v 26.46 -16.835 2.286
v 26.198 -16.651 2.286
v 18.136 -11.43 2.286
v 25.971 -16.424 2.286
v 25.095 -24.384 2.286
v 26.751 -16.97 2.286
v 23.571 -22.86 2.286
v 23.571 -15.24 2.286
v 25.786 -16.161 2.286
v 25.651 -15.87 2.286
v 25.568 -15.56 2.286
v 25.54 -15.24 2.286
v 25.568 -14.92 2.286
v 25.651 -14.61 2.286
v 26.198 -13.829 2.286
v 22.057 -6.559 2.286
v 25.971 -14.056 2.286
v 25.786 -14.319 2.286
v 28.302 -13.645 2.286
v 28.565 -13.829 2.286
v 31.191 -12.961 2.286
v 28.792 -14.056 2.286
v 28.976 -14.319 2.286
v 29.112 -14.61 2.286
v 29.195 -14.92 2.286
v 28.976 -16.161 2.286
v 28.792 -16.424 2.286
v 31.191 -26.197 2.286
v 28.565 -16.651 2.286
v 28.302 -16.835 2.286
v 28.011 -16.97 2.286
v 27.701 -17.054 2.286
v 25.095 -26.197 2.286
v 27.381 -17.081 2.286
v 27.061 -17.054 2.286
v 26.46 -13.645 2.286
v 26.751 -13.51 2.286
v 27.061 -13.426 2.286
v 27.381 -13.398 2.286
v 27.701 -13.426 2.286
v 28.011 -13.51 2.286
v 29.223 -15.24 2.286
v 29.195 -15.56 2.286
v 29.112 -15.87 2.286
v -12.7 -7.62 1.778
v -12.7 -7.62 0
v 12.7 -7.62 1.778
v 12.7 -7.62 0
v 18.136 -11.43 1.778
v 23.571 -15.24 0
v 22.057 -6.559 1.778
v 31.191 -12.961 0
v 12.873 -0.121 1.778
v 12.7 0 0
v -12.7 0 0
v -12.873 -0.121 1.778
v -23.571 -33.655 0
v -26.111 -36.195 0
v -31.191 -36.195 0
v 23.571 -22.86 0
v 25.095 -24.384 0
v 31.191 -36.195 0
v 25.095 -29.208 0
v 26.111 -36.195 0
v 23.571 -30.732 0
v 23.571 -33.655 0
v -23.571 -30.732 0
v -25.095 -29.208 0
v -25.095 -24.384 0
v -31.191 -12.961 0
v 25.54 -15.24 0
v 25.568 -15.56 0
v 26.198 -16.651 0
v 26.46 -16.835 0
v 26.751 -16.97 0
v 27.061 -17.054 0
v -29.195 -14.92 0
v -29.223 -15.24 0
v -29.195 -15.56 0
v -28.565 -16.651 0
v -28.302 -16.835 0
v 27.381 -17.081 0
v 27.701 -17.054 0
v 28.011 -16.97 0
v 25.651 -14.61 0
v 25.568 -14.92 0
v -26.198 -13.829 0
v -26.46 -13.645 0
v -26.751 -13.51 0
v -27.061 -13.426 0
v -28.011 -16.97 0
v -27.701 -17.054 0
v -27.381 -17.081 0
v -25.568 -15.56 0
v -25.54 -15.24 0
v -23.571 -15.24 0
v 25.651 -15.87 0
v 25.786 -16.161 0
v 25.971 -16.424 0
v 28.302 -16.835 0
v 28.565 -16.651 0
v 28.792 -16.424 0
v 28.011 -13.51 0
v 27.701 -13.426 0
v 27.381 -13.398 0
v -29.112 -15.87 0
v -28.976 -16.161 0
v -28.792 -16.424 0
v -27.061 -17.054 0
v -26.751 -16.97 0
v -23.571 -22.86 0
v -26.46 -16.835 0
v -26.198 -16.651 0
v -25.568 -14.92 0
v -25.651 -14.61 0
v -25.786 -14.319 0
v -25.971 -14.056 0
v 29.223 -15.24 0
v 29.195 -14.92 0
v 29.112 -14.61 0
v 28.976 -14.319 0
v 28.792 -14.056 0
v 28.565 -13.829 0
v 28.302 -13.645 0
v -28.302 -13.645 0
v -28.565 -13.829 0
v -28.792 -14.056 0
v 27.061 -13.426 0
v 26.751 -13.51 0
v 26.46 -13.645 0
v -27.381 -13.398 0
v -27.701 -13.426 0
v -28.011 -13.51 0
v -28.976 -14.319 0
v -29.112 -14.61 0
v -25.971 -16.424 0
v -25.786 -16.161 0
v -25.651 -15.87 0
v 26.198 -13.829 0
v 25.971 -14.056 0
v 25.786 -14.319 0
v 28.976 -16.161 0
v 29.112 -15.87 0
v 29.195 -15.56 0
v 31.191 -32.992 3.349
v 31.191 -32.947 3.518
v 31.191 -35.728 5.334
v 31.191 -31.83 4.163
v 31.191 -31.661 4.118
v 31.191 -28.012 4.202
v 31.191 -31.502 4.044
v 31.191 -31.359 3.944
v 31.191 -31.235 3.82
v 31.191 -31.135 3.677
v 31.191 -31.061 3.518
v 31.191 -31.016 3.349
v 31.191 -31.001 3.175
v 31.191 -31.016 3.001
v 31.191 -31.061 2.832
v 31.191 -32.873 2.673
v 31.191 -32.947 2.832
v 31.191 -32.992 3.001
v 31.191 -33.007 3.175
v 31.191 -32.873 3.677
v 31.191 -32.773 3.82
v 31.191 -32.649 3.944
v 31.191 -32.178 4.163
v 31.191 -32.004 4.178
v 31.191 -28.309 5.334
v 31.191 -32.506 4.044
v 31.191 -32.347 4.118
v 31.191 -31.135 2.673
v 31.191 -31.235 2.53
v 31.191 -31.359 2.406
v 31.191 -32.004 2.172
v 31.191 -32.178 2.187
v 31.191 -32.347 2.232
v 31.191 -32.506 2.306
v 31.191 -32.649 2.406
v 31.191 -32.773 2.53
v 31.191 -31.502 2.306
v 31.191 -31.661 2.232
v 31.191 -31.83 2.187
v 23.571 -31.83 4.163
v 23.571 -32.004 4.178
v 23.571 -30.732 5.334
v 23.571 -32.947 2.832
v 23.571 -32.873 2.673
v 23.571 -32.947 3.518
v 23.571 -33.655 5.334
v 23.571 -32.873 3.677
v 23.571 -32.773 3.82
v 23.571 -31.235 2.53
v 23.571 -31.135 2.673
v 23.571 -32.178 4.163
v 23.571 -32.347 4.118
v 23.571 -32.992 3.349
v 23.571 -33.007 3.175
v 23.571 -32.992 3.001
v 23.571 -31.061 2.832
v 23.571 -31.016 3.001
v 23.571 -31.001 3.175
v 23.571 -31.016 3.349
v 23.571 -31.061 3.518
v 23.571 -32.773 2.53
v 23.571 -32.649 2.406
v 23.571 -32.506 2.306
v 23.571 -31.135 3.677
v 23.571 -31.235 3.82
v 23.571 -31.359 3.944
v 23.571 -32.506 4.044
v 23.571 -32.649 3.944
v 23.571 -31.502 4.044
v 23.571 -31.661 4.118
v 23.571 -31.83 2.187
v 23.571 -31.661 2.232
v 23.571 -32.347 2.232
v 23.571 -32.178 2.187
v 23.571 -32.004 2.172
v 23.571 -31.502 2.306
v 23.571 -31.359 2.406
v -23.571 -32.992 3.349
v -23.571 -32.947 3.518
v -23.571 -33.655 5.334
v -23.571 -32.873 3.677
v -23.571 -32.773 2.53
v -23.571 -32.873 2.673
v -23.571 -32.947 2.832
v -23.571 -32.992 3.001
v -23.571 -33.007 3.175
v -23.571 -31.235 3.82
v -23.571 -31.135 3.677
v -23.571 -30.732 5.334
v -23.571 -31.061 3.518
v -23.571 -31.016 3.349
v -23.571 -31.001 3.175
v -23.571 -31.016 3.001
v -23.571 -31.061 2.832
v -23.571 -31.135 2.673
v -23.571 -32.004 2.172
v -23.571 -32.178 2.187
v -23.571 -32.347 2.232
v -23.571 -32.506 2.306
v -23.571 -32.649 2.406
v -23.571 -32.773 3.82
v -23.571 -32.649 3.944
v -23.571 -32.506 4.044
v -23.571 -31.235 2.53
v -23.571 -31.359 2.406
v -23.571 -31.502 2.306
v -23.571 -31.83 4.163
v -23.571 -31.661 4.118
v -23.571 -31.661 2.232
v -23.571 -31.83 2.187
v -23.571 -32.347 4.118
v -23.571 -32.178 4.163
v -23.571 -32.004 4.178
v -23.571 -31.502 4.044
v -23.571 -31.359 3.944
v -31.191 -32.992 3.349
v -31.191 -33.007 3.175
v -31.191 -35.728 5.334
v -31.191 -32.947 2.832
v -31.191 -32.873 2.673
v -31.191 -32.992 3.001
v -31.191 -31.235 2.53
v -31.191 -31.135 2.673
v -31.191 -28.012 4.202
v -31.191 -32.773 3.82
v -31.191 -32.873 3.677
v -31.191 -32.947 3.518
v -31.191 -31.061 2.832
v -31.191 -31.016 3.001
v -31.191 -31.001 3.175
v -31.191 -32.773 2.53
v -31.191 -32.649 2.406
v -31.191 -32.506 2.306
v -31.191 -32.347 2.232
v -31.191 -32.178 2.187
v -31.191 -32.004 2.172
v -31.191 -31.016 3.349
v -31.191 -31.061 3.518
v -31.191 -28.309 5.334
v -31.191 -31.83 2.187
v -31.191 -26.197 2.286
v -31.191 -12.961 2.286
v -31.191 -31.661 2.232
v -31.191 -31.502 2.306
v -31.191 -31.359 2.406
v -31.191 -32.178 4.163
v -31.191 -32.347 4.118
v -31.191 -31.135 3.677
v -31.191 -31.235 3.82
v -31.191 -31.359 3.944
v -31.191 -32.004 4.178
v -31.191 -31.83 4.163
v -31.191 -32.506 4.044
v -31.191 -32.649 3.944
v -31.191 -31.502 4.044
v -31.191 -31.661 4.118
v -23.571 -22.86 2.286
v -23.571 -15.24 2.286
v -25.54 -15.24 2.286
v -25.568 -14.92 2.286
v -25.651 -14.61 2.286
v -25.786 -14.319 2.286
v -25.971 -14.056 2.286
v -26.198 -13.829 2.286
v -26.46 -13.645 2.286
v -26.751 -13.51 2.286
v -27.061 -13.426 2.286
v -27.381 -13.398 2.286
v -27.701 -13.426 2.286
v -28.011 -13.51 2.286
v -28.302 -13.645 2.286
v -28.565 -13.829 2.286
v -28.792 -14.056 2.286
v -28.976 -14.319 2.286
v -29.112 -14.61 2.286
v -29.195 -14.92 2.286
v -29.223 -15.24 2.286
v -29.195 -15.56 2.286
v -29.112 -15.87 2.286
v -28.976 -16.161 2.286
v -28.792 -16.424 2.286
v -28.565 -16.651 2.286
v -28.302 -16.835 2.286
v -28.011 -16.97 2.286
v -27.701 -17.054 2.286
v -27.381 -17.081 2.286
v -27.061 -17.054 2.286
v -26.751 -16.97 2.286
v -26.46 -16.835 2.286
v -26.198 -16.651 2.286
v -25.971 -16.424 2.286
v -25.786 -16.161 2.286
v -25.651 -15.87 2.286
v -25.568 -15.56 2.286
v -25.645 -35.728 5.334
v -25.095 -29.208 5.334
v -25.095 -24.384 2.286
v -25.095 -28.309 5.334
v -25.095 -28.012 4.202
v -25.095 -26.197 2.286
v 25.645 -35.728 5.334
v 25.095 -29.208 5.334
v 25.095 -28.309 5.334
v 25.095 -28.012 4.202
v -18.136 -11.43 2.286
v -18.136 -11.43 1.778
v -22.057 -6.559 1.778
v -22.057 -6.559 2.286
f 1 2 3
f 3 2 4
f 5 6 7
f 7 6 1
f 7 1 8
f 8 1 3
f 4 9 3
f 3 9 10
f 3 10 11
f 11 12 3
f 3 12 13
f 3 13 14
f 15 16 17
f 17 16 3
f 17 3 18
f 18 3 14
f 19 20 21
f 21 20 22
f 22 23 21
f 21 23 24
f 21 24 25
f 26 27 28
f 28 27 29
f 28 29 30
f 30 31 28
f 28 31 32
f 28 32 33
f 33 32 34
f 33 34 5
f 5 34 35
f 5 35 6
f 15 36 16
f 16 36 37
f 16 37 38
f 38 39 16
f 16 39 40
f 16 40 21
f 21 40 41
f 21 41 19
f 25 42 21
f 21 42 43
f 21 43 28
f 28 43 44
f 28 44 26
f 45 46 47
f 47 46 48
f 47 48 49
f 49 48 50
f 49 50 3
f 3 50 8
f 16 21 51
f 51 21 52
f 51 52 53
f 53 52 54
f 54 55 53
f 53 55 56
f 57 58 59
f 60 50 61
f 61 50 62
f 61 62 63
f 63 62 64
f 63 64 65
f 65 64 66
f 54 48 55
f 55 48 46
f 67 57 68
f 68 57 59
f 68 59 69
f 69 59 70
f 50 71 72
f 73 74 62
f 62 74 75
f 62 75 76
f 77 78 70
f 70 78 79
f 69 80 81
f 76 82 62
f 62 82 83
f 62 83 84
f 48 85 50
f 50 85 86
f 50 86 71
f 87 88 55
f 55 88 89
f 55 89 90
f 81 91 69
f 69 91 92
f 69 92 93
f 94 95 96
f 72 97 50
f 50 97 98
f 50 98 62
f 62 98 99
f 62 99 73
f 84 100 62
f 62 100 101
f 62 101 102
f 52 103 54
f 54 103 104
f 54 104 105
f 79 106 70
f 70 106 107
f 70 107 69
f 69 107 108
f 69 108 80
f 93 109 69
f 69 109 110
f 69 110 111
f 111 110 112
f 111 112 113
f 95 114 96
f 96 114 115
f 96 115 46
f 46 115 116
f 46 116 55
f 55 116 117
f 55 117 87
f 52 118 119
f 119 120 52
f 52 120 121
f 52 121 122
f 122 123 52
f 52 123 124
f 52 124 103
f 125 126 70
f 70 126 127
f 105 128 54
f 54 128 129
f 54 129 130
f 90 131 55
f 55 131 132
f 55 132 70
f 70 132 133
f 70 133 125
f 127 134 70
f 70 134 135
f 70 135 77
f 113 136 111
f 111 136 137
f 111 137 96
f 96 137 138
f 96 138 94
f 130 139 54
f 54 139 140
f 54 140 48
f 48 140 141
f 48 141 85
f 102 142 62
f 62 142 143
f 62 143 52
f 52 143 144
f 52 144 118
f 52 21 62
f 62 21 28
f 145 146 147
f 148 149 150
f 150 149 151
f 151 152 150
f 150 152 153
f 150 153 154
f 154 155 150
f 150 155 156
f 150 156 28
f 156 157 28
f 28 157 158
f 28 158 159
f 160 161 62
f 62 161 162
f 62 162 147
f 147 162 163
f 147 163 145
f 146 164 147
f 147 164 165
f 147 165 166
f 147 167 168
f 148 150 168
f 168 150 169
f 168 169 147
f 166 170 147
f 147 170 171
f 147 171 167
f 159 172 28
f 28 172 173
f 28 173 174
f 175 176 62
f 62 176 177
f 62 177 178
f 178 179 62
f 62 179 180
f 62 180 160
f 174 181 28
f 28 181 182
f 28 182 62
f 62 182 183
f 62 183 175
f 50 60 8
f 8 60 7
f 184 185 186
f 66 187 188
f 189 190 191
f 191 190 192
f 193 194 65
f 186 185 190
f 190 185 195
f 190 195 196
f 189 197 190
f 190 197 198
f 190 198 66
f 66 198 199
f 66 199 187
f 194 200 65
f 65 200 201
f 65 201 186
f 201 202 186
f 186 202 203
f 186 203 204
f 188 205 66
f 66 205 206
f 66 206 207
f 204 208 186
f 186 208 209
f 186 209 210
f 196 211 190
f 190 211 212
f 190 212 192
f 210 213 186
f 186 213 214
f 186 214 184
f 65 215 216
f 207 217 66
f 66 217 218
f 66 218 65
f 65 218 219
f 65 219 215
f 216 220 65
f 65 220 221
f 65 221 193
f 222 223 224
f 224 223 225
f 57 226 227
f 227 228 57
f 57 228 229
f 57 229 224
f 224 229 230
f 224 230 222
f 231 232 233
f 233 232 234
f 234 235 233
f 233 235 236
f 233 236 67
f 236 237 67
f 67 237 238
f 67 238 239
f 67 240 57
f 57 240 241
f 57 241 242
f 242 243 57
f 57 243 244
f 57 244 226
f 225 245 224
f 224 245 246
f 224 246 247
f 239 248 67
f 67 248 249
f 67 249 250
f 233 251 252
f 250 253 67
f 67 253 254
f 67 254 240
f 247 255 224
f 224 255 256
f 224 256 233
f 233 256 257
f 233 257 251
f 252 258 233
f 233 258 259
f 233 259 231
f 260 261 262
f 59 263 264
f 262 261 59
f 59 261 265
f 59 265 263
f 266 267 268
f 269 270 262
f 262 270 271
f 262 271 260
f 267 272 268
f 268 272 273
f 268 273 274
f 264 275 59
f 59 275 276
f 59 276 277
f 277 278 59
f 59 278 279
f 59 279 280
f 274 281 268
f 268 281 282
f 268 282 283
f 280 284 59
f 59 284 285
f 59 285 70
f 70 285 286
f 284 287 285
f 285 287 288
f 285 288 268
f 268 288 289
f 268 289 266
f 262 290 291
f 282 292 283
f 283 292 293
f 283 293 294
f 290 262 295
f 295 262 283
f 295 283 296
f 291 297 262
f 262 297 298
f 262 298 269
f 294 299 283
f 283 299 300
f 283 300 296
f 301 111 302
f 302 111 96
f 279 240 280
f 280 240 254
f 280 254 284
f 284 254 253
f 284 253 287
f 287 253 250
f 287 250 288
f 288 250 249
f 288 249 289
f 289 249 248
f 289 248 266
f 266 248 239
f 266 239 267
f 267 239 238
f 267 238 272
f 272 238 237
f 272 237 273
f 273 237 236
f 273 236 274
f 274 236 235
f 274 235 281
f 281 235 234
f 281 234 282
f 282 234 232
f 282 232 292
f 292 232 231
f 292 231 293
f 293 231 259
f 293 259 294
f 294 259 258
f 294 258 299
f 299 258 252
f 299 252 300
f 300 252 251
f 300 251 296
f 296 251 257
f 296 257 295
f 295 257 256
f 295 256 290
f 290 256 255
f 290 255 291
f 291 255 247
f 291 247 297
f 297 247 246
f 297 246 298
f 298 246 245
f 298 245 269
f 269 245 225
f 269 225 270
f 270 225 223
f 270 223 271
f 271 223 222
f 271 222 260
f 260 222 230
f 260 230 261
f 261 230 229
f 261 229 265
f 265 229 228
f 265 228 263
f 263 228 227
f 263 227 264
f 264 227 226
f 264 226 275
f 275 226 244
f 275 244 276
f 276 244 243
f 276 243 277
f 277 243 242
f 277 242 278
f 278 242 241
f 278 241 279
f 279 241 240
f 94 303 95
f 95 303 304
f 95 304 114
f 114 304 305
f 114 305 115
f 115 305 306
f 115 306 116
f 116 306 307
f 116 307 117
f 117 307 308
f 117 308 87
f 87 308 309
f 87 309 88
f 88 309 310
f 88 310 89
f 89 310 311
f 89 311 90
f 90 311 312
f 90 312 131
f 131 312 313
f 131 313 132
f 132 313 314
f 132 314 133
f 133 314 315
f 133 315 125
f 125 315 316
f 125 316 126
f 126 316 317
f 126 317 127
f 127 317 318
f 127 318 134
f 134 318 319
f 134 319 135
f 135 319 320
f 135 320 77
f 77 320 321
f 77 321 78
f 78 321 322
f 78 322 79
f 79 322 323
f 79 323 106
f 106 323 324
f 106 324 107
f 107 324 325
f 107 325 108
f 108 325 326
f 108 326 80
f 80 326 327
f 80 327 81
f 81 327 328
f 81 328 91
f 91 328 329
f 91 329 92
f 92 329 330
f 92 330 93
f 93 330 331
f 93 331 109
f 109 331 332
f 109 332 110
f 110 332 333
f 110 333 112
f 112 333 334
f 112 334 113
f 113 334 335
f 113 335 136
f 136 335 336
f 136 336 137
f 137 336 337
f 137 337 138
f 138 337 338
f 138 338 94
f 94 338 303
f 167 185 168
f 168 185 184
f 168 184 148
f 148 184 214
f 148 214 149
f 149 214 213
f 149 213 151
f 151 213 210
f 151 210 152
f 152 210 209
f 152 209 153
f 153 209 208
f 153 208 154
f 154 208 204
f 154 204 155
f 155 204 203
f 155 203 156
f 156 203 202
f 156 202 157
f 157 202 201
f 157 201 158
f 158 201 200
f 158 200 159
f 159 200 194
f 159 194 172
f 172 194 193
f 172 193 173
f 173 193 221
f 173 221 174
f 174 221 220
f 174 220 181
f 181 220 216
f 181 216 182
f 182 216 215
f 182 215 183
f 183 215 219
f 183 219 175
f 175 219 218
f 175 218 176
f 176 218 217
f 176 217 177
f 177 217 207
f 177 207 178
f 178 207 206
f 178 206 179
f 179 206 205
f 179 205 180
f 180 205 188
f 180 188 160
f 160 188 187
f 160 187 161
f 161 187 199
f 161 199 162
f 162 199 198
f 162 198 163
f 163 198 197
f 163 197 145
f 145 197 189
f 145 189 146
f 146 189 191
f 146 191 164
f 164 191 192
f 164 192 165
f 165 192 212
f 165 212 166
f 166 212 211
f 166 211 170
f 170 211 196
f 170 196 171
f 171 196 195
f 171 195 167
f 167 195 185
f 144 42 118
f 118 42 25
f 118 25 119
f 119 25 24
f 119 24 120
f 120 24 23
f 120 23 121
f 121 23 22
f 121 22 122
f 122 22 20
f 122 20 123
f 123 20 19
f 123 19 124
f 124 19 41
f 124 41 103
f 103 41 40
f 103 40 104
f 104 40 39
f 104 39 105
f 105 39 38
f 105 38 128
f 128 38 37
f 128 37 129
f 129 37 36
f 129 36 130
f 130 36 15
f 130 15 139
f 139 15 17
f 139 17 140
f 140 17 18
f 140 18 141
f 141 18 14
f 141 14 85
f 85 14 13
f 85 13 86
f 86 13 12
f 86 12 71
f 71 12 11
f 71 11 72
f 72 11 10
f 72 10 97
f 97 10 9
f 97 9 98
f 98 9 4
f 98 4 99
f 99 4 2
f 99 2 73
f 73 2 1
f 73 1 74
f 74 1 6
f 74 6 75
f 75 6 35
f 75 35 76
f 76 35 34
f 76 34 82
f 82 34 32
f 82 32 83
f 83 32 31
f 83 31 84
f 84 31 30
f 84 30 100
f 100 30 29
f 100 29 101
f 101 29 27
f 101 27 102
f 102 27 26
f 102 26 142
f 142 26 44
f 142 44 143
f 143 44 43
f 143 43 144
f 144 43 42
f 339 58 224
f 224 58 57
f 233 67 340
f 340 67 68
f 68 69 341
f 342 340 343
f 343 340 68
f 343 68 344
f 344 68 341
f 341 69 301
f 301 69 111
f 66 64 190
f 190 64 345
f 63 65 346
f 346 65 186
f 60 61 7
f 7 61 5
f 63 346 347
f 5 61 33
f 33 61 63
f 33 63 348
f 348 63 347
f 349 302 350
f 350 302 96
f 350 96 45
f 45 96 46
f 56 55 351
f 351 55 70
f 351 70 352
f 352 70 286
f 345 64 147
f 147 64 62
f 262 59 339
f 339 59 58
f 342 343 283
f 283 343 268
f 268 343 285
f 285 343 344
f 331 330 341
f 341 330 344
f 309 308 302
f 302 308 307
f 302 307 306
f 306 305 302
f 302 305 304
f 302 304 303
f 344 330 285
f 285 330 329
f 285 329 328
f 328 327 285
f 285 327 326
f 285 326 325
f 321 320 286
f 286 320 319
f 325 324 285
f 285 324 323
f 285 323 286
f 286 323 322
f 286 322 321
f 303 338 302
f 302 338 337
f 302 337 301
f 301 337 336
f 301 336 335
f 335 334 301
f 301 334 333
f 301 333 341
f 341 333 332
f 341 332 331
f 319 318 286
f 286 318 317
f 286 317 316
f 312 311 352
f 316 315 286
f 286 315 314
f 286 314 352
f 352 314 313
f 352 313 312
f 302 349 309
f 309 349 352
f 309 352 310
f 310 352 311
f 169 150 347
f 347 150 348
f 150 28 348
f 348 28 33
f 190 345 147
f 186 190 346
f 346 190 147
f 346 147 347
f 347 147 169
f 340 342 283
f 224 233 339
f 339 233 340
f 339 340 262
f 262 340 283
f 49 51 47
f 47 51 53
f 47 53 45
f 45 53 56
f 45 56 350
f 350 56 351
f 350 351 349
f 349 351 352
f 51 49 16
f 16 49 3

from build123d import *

# Parameters (mm, degrees)
BOSS_EXTRUDE1_DEPTH                  = 6.35
CUT_START                            = -8.62
SKETCH2_R                            = 1.0033
CUT_FOR_LID_MOUNT_SCREW_DEPTH        = 33.1912
SKETCH3_R                            = 1.8415
CUT_FOR_MOUNTING_SCREW_DEPTH         = 7.35
CUT_FOR_CONTROL_WIRE_CLEARANCE_DEPTH = 7.35
BOSS_EXTRUDE2_DEPTH                  = 6.35
CUT_EXTRUDE1_DEPTH                   = 7.35
CUT_EXTRUDE2_DEPTH                   = 63.3824
SKETCH18_W                           = 1.016
SKETCH18_H                           = 8.944323542
CUT_EXTRUDE11_DEPTH                  = 63.3824
CUT_EXTRUDE12_DEPTH                  = 0.508


with BuildPart() as part:
    # Sketch1 → Boss-Extrude1 (new body)
    with BuildSketch(Plane.XY):
        Polygon((0, 0), (-31.1912, 0), (-31.1912, -36.195), (-23.5712, -36.195), (-23.5712, -7.62), (0, -7.62), align=None)
    boss_extrude1 = extrude(amount=BOSS_EXTRUDE1_DEPTH)

    # Sketch2 → cut for lid mount screw (cut)
    with BuildSketch(Plane(origin=(-23.5712, 0, 0), x_dir=(0, 0, -1), z_dir=(1, 0, 0)).offset(CUT_START)):
        with Locations((-3.175, -32.004)):
            Circle(SKETCH2_R)
    cut_for_lid_mount_screw = extrude(amount=CUT_FOR_LID_MOUNT_SCREW_DEPTH, mode=Mode.SUBTRACT)

    # Sketch3 → cut for mounting screw (cut, through all)
    with BuildSketch(Plane.XY.offset(6.35)):
        with Locations((-27.3812, -15.24)):
            Circle(SKETCH3_R)
    cut_for_mounting_screw = extrude(amount=-CUT_FOR_MOUNTING_SCREW_DEPTH, mode=Mode.SUBTRACT)

    # Mirror1: Boss-Extrude1 across plane
    add(boss_extrude1.mirror(Plane(origin=(0, 0, 0), x_dir=(0, 0, 1), z_dir=(1, 0, 0))))

    # Mirror2: cut for lid mount screw across plane
    add(cut_for_lid_mount_screw.mirror(Plane(origin=(0, 0, 0), x_dir=(0, 0, 1), z_dir=(1, 0, 0))), mode=Mode.SUBTRACT)

    # Mirror3: cut for mounting screw across plane
    add(cut_for_mounting_screw.mirror(Plane(origin=(0, 0, 0), x_dir=(0, 0, 1), z_dir=(1, 0, 0))), mode=Mode.SUBTRACT)

    # Sketch4 → cut for control wire clearance (cut, through all)
    with BuildSketch(Plane.XY.offset(6.35)):
        Polygon((-25.0952, -24.384), (-25.0952, -29.207906516), (-23.5712, -30.731906516), (-23.5712, -22.86), align=None)
        Polygon((-23.5712, -36.195), (-23.5712, -33.655), (-26.1112, -36.195), align=None)
    cut_for_control_wire_clearance = extrude(amount=-CUT_FOR_CONTROL_WIRE_CLEARANCE_DEPTH, mode=Mode.SUBTRACT)

    # Mirror4: cut for control wire clearance across plane
    add(cut_for_control_wire_clearance.mirror(Plane(origin=(0, 0, 0), x_dir=(0, 0, 1), z_dir=(1, 0, 0))), mode=Mode.SUBTRACT)

    # Sketch5 → Boss-Extrude2 (add)
    with BuildSketch(Plane.XY.offset(6.35)):
        Polygon((-23.5712, -15.24), (-12.7, -7.62), (-13.297814932, 0), (-31.1912, -12.542092337), (-25.168706666, -12.542092337), align=None)
    boss_extrude2 = extrude(amount=-BOSS_EXTRUDE2_DEPTH)

    # Sketch6 → Cut-Extrude1 (cut, through all)
    with BuildSketch(Plane.XY.offset(6.35)):
        Polygon((-12.7, 0), (-31.1912, -12.961121495), (-31.1912, 0), align=None)
    cut_extrude1 = extrude(amount=-CUT_EXTRUDE1_DEPTH, mode=Mode.SUBTRACT)

    # Mirror5: Boss-Extrude2, Cut-Extrude1 across plane
    add(boss_extrude2.mirror(Plane(origin=(0, 0, 0), x_dir=(0, 0, 1), z_dir=(1, 0, 0))))
    add(cut_extrude1.mirror(Plane(origin=(0, 0, 0), x_dir=(0, 0, 1), z_dir=(1, 0, 0))), mode=Mode.SUBTRACT)

    # Sketch7 → Cut-Extrude2 (cut, through all)
    with BuildSketch(Plane.ZY.offset(31.1912)):
        Polygon((6.35, -28.575), (4.201541935, -28.012372807), (2.286, -26.197127086), (2.286, -0.156208848), (0, 0), (6.35, 0), align=None)
        Polygon((0, -36.195), (6.35, -36.195), (6.35, -35.639446987), align=None)
    extrude(amount=-CUT_EXTRUDE2_DEPTH, mode=Mode.SUBTRACT)

    # Sketch18 → Cut-Extrude11 (cut, through all)
    with BuildSketch(Plane(origin=(31.1912, 0, 0), x_dir=(0, 0, -1), z_dir=(1, 0, 0))):
        with Locations((-5.842, -31.986995599)):
            Rectangle(SKETCH18_W, SKETCH18_H)
    extrude(amount=-CUT_EXTRUDE11_DEPTH, mode=Mode.SUBTRACT)

    # Sketch19 → Cut-Extrude12 (cut)
    with BuildSketch(Plane.XY.offset(2.286)):
        Polygon((-22.057028978, -6.558665171), (-18.1356, -11.43), (-12.7, -7.62), (0, -7.62), (0, 0), (-12.7, 0), align=None)
    cut_extrude12 = extrude(amount=-CUT_EXTRUDE12_DEPTH, mode=Mode.SUBTRACT)

    # Mirror6: Cut-Extrude12 across plane
    add(cut_extrude12.mirror(Plane(origin=(0, 0, 0), x_dir=(0, 0, 1), z_dir=(1, 0, 0))), mode=Mode.SUBTRACT)


solid = part.part
